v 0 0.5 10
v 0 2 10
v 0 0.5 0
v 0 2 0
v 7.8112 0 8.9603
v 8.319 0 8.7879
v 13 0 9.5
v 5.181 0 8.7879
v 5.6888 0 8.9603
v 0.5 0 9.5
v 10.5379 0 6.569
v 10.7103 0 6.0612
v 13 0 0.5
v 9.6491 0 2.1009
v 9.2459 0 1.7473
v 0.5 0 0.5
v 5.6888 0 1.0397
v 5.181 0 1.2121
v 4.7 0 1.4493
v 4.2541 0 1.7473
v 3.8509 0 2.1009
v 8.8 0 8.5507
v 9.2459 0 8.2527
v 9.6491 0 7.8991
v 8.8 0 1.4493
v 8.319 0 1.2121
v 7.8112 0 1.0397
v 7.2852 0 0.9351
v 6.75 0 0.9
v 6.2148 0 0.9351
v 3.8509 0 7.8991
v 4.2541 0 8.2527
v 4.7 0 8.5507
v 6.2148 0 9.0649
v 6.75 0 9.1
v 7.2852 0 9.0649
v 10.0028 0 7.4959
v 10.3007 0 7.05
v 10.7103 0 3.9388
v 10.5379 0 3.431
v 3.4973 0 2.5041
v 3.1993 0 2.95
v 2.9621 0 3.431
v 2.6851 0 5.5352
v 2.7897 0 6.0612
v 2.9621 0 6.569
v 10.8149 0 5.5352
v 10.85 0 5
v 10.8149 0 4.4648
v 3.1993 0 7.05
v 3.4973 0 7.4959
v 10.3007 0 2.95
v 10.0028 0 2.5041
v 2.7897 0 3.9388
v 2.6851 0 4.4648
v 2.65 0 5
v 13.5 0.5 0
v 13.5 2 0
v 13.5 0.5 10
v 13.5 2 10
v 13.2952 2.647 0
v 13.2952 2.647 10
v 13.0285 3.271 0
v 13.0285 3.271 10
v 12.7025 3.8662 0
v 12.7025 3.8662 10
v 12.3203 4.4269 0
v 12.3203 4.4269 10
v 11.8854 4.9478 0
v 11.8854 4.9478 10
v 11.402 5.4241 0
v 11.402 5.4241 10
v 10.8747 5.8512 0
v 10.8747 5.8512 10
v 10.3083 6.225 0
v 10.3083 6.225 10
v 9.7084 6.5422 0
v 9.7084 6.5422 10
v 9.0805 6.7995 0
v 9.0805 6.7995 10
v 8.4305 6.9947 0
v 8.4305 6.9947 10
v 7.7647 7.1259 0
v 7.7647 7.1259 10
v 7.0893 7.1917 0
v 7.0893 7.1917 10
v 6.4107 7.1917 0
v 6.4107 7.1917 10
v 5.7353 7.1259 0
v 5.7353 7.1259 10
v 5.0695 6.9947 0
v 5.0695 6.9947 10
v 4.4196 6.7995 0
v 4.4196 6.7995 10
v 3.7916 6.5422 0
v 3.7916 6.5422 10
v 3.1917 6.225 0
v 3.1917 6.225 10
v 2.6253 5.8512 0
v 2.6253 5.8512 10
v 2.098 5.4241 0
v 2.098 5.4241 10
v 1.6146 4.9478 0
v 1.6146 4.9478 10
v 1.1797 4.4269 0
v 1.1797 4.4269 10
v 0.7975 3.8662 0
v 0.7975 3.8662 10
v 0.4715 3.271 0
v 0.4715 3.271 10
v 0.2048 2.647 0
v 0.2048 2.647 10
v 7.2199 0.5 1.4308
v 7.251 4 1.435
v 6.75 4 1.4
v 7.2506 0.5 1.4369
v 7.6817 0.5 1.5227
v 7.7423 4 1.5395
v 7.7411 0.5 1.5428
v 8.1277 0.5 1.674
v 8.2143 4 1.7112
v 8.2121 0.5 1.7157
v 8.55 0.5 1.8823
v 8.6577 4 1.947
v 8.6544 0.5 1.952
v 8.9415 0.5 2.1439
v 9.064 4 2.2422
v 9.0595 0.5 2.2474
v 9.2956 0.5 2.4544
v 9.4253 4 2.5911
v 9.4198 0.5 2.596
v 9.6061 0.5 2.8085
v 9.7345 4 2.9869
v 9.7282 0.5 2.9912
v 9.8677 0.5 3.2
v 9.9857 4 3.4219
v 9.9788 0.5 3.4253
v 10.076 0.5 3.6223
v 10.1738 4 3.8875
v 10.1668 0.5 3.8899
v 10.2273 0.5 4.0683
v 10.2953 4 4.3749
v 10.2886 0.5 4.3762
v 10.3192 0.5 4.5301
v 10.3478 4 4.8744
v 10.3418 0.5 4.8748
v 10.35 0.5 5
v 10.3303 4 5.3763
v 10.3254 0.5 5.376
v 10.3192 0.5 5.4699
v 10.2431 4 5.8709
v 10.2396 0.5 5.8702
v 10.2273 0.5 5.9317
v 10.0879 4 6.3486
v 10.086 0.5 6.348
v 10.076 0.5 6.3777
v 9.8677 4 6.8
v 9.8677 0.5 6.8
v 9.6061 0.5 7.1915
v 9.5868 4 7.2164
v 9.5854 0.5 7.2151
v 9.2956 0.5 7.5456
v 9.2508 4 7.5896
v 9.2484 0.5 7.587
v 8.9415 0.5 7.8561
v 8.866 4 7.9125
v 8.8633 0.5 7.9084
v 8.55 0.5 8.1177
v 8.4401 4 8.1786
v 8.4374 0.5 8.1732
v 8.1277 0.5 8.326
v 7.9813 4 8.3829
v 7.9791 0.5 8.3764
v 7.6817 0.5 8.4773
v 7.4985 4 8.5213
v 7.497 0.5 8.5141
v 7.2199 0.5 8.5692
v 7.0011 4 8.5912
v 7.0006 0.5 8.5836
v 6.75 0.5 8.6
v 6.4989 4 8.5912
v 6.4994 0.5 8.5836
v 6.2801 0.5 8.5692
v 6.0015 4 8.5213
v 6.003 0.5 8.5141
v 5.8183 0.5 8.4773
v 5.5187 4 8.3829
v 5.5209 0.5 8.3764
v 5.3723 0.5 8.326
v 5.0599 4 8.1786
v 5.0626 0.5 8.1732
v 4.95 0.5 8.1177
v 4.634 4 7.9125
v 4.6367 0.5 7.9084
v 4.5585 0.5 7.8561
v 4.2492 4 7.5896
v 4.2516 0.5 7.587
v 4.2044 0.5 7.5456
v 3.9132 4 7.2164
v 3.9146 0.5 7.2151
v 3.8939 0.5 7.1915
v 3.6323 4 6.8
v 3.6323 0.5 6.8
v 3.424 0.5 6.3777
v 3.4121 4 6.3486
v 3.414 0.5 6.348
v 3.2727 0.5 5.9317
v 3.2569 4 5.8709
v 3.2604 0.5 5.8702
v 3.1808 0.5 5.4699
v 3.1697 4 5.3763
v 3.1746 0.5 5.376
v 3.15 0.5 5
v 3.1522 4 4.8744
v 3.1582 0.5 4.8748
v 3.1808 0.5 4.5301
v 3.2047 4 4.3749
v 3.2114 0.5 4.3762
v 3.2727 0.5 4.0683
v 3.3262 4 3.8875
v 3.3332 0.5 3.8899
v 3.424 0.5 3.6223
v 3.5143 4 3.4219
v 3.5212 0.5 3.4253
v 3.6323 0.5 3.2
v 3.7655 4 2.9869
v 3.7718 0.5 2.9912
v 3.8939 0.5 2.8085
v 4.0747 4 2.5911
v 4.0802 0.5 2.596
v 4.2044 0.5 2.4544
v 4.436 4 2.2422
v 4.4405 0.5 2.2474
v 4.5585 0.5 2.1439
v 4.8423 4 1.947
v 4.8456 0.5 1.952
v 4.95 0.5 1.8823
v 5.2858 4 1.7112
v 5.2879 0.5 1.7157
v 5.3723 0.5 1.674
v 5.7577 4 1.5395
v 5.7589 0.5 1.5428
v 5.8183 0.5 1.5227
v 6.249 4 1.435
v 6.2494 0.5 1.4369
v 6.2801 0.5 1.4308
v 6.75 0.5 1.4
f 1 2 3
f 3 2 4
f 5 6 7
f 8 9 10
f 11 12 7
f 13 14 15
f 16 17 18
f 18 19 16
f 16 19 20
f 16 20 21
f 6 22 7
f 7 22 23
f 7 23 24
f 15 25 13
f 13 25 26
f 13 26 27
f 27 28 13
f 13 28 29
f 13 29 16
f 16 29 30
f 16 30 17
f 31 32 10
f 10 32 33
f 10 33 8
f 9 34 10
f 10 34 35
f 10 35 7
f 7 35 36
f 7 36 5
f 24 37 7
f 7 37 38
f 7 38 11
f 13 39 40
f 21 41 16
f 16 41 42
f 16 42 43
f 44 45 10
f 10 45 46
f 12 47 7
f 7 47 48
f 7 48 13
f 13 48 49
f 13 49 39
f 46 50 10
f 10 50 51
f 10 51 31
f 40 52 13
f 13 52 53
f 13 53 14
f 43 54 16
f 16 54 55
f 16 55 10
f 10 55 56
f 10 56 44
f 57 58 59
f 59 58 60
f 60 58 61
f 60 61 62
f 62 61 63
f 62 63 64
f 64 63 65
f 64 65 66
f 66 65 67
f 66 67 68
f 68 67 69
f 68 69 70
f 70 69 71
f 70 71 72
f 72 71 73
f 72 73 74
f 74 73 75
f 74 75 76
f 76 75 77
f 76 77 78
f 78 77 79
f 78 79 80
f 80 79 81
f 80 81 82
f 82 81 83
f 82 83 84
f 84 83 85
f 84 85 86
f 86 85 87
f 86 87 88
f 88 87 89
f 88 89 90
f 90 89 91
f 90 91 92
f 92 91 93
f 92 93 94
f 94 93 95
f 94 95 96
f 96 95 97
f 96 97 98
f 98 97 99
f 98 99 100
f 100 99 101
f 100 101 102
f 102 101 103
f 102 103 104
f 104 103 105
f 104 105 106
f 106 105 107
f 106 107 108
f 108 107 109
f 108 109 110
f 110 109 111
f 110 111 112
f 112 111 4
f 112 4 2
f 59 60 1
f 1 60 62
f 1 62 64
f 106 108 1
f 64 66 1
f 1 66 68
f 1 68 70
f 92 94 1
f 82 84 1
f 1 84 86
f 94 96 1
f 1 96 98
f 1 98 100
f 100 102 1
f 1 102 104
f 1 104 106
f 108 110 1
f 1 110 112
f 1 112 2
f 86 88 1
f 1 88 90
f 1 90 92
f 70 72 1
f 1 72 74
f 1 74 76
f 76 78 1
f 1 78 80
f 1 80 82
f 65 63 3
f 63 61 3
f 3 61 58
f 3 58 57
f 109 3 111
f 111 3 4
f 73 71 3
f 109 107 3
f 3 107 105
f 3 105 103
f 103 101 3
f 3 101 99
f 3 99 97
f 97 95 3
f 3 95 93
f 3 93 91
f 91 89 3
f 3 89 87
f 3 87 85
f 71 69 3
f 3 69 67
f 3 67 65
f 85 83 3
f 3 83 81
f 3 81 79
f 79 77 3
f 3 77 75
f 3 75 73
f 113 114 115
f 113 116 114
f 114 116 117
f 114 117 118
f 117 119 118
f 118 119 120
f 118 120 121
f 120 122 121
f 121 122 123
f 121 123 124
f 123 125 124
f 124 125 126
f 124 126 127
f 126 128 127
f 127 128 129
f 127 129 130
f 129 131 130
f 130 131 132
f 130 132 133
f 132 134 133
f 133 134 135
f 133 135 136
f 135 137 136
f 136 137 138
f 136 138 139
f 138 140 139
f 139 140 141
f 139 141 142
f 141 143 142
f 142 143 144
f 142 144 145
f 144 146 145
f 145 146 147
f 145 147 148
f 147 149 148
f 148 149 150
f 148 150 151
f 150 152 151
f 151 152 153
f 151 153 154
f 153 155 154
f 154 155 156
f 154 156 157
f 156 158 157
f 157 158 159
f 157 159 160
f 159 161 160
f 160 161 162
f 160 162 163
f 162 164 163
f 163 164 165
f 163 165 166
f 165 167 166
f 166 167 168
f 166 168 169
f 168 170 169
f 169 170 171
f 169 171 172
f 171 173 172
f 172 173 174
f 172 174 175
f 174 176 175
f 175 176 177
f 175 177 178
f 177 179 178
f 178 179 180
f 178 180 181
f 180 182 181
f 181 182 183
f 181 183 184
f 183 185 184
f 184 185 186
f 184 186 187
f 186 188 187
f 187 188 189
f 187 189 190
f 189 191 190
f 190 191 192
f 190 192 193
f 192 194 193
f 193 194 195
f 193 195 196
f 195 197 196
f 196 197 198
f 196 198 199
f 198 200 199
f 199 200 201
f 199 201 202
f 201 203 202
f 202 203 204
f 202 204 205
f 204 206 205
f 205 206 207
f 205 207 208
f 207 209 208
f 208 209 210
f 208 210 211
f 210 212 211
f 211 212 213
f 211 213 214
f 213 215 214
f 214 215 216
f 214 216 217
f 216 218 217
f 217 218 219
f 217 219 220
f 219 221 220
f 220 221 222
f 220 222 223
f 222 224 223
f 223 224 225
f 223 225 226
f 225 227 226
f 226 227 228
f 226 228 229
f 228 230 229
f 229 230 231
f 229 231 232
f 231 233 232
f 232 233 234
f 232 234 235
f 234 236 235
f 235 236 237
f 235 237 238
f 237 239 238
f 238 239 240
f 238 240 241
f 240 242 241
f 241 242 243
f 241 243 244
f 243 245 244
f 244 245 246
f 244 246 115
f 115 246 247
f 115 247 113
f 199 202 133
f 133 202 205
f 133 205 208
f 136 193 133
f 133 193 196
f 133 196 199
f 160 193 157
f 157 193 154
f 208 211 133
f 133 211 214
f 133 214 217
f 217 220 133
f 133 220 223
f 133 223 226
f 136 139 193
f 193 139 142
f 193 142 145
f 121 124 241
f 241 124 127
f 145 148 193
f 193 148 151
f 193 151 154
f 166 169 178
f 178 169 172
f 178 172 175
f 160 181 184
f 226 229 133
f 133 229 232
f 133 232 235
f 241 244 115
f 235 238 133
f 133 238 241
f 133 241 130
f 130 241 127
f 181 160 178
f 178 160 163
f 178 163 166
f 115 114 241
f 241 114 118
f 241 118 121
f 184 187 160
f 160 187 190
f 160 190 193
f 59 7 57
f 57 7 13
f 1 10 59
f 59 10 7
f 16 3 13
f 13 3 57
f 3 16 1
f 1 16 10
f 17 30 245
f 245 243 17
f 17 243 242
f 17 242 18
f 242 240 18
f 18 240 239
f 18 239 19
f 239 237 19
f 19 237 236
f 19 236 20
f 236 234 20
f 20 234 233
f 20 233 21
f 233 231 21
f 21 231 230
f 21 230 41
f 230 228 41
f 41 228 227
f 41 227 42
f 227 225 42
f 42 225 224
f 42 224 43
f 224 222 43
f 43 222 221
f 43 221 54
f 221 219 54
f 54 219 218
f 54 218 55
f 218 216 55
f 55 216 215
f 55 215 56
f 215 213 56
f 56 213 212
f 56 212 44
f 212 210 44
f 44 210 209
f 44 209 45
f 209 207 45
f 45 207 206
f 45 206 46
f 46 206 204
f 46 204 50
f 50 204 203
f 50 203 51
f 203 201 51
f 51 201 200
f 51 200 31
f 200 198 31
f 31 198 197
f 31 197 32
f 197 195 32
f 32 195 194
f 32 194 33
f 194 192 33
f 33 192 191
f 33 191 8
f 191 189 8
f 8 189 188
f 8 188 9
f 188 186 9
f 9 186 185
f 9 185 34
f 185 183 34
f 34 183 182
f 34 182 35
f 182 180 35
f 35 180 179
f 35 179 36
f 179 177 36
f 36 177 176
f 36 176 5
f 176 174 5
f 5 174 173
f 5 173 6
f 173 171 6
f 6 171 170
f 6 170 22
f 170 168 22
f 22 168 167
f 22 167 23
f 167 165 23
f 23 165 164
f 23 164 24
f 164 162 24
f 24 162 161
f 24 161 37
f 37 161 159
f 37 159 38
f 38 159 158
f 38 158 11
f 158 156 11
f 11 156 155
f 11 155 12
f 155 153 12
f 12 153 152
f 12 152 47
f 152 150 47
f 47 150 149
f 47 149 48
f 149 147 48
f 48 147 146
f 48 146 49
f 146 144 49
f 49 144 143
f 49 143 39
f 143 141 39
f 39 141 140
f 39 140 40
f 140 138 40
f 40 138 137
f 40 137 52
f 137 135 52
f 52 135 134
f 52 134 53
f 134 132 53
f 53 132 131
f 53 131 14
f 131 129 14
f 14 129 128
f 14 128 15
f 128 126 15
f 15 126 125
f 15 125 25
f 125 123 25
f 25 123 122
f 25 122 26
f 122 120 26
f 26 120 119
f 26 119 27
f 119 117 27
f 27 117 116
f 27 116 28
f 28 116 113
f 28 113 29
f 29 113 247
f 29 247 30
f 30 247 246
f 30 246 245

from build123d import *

# Parameters (mm, degrees)
BOSS_EXTRUDE1_DEPTH = 10
SKETCH2_R           = 3.6
CUT_EXTRUDE1_DEPTH  = 4
CHAMFER1_SIZE       = 0.5


with BuildPart() as part:
    # Sketch1 → Boss-Extrude1 (new body)
    with BuildSketch(Plane.XY):
        with BuildLine():
            Line((0, 0), (13.5, 0))
            Line((13.5, 0), (13.5, 2))
            ThreePointArc((13.5, 2), (6.75, 7.2), (0, 2))
            Line((0, 2), (0, 0))
        make_face()
    extrude(amount=BOSS_EXTRUDE1_DEPTH)

    # Sketch2 → Cut-Extrude1 (cut)
    with BuildSketch(Plane.XZ):
        with Locations(Location((6.75, 5, 0), (0, 0, 270))):
            Circle(SKETCH2_R)
    extrude(amount=-CUT_EXTRUDE1_DEPTH, mode=Mode.SUBTRACT)

    # Chamfer1
    chamfer1_edges = [part.edges().sort_by_distance(p)[0] for p in [
        (6.75, 0, 8.6),
        (6.75, 0, 0),
        (6.75, 0, 10),
        (13.5, 0, 5),
        (0, 0, 5),
    ]]
    chamfer(chamfer1_edges, length=CHAMFER1_SIZE)


solid = part.part
